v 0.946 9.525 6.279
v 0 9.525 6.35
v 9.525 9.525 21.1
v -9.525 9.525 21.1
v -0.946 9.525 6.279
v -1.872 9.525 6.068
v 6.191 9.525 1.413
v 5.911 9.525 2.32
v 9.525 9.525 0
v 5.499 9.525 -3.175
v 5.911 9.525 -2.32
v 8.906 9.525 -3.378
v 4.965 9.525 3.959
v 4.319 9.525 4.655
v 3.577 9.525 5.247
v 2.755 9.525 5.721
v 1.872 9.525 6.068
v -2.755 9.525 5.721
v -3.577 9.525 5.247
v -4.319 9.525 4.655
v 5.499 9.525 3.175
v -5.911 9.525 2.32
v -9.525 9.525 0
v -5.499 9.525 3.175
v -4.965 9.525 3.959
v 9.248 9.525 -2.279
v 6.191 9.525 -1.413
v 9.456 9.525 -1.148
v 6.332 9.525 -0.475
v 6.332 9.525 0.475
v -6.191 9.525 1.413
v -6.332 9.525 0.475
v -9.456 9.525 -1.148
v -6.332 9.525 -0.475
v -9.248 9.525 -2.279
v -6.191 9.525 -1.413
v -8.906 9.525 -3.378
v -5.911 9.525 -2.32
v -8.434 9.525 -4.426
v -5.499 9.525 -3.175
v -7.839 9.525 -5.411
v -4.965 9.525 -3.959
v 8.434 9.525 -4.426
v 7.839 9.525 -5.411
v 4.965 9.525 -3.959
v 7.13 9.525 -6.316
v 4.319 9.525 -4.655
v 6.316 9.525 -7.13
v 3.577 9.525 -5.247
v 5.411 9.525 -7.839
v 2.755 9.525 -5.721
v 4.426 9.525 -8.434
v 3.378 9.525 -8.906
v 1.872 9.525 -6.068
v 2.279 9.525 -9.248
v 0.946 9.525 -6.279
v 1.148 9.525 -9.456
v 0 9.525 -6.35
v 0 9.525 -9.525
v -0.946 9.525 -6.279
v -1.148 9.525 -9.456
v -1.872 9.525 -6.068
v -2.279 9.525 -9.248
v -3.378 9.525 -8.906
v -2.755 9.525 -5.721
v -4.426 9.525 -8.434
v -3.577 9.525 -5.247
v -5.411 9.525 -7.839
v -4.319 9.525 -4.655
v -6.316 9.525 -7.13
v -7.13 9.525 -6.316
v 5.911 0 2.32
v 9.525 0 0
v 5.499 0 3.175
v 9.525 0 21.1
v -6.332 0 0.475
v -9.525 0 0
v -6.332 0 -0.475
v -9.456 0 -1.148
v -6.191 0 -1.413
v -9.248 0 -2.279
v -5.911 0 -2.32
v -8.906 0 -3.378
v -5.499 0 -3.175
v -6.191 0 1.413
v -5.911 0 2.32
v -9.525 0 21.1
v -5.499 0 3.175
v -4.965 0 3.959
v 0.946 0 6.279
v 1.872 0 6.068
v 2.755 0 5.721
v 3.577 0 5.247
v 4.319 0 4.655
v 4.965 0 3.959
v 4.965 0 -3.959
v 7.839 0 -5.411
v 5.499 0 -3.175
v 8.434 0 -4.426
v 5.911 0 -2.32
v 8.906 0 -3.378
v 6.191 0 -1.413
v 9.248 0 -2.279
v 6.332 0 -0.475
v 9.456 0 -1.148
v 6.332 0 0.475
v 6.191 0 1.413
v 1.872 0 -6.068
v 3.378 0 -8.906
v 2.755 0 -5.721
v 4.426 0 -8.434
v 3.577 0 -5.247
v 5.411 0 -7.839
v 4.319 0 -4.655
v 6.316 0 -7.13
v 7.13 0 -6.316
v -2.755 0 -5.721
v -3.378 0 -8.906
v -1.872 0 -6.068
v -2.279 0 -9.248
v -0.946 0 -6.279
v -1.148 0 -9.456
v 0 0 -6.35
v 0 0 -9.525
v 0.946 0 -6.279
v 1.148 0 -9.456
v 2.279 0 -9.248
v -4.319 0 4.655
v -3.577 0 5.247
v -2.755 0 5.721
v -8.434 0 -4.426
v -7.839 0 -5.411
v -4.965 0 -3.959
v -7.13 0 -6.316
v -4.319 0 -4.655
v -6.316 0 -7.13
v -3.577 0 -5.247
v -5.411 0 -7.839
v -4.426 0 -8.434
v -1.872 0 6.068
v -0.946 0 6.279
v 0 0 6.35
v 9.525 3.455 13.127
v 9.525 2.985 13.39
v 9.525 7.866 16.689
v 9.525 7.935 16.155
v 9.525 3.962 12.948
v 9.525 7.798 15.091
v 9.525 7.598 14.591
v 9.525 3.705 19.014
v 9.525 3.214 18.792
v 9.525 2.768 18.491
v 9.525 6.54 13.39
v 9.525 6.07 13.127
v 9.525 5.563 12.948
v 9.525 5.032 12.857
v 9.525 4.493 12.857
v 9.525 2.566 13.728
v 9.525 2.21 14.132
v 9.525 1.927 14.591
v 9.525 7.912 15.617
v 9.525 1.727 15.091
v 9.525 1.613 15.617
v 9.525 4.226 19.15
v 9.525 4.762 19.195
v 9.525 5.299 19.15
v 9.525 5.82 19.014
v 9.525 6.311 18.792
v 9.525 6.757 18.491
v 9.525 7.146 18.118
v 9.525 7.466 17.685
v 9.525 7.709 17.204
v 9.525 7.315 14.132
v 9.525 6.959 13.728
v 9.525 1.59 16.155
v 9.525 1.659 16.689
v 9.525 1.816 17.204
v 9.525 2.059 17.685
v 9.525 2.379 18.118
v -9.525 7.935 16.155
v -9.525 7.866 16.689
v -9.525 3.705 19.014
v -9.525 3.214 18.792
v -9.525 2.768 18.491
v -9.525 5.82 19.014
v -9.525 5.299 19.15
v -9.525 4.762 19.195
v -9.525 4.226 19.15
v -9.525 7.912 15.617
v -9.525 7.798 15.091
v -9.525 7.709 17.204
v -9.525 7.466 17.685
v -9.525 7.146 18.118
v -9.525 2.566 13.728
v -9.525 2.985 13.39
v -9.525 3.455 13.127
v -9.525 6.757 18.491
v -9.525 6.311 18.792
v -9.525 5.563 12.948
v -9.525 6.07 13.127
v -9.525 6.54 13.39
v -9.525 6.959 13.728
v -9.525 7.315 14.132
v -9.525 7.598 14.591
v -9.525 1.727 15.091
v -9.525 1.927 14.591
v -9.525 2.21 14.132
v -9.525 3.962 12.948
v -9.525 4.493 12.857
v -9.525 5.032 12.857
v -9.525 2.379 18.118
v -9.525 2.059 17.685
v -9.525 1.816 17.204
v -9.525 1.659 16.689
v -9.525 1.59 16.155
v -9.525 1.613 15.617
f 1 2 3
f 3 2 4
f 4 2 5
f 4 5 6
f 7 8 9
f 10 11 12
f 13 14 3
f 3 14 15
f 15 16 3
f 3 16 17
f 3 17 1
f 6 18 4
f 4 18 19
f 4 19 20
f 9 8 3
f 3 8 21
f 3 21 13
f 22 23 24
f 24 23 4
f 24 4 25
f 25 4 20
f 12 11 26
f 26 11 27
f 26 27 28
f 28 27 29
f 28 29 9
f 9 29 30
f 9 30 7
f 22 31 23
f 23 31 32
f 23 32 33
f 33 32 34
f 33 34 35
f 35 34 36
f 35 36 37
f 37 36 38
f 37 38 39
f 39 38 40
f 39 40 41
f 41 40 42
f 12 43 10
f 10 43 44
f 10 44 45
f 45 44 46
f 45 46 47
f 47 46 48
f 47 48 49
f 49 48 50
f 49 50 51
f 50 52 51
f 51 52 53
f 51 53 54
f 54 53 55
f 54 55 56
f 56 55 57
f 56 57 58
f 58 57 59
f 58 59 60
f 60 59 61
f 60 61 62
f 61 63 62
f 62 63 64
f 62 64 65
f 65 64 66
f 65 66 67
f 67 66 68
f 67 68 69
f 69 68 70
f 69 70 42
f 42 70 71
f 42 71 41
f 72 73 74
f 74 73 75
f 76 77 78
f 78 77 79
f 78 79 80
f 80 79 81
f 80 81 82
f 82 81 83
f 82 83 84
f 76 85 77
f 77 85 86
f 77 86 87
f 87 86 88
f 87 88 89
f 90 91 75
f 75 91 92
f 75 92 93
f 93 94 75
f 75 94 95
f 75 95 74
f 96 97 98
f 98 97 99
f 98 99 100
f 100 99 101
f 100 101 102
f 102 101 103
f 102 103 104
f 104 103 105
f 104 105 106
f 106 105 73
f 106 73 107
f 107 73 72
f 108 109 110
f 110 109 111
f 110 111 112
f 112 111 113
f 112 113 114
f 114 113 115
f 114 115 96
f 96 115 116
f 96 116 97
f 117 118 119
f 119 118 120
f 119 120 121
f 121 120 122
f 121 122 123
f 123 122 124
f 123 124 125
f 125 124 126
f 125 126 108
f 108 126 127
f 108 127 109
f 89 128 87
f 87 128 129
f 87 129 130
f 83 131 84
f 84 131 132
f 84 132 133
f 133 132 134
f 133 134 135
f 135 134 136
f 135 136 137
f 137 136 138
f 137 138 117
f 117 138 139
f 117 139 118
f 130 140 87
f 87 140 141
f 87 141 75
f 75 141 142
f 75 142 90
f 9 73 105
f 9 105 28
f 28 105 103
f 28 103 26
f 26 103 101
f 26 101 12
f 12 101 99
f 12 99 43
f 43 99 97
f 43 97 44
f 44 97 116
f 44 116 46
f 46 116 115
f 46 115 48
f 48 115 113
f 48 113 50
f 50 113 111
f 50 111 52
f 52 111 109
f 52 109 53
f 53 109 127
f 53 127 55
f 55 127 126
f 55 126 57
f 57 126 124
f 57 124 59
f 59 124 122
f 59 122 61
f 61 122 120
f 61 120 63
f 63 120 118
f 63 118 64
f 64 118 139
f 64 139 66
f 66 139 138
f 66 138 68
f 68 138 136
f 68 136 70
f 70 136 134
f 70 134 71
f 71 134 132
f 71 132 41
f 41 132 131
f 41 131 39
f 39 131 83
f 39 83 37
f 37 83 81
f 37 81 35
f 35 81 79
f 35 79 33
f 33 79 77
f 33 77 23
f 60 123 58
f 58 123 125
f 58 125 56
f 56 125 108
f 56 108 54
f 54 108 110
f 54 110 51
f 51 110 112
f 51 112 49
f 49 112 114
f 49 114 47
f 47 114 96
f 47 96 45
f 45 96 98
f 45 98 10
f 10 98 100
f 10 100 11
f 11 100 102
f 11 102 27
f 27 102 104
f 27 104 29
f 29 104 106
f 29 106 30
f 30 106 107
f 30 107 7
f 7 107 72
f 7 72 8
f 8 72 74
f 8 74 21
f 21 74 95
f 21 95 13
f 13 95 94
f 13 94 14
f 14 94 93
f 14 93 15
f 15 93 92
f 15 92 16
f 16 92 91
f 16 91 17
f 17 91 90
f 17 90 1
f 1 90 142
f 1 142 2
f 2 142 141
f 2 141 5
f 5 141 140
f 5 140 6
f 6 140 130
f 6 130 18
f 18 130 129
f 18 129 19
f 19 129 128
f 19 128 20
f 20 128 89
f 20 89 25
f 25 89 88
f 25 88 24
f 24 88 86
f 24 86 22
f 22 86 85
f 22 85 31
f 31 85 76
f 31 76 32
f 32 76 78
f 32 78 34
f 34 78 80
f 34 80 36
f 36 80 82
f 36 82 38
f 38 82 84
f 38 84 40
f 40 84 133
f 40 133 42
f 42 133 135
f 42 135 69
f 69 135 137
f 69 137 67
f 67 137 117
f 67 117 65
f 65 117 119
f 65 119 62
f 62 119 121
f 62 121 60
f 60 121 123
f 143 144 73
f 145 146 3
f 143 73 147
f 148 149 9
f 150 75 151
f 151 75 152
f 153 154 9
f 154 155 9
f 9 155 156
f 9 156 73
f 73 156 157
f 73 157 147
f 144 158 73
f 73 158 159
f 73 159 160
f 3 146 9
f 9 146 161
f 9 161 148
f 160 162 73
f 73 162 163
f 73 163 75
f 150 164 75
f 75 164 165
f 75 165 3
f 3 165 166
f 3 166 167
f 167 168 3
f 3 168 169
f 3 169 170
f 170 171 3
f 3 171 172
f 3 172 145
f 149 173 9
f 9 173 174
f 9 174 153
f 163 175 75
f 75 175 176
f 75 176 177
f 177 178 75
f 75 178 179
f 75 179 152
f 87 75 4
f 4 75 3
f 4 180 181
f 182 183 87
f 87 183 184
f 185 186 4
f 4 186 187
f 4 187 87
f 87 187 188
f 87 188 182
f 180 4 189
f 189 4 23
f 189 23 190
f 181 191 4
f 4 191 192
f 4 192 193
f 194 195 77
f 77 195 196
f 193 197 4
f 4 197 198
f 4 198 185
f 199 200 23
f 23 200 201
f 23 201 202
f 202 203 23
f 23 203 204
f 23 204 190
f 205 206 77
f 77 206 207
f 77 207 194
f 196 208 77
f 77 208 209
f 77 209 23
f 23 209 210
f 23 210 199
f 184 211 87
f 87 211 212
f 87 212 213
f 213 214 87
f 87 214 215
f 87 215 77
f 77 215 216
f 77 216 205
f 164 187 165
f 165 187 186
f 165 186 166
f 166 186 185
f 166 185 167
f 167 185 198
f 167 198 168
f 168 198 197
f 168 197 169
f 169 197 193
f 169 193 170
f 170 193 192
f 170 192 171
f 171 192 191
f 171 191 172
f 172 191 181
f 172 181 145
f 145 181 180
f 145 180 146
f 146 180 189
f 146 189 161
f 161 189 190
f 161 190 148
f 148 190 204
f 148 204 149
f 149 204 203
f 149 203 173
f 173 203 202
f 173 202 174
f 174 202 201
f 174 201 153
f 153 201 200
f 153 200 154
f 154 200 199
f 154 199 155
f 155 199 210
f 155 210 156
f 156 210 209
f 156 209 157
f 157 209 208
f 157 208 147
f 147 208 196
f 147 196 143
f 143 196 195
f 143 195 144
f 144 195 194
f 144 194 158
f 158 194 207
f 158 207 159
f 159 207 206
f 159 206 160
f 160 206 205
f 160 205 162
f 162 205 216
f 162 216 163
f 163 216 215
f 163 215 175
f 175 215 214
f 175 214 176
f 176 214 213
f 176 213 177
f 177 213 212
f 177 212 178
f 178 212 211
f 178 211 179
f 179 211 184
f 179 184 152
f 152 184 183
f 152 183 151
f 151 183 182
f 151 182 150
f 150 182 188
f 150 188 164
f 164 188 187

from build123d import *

# Parameters (mm, degrees)
SKETCH1_R           = 9.525
SKETCH1_R_2         = 6.35
BOSS_EXTRUDE1_DEPTH = 9.525
BOSS_EXTRUDE2_DEPTH = 9.525
SKETCH3_R           = 3.175
CUT_EXTRUDE1_DEPTH  = 20.05


with BuildPart() as part:
    # Sketch1 → Boss-Extrude1 (new body)
    with BuildSketch(Plane(origin=(0, 0, 0), x_dir=(1, 0, 0), z_dir=(0, 1, 0))):
        Circle(SKETCH1_R)
        Circle(SKETCH1_R_2, mode=Mode.SUBTRACT)
    extrude(amount=BOSS_EXTRUDE1_DEPTH)

    # Sketch2 → Boss-Extrude2 (add, through all)
    with BuildSketch(Plane(origin=(0, 9.525, 0), x_dir=(1, 0, 0), z_dir=(0, 1, 0))):
        with BuildLine():
            Line((-9.525, 0), (-9.525, -21.100260413))
            Line((-9.525, -21.100260413), (9.525, -21.100260413))
            Line((9.525, -21.100260413), (9.525, 0))
            ThreePointArc((9.525, 0), (0, -9.525), (-9.525, 0))
        make_face()
    extrude(amount=-BOSS_EXTRUDE2_DEPTH)

    # Sketch3 → Cut-Extrude1 (cut, through all)
    with BuildSketch(Plane.ZY.offset(9.525)):
        with Locations((16.020260413, 4.7625)):
            Circle(SKETCH3_R)
    extrude(amount=-CUT_EXTRUDE1_DEPTH, mode=Mode.SUBTRACT)


solid = part.part
